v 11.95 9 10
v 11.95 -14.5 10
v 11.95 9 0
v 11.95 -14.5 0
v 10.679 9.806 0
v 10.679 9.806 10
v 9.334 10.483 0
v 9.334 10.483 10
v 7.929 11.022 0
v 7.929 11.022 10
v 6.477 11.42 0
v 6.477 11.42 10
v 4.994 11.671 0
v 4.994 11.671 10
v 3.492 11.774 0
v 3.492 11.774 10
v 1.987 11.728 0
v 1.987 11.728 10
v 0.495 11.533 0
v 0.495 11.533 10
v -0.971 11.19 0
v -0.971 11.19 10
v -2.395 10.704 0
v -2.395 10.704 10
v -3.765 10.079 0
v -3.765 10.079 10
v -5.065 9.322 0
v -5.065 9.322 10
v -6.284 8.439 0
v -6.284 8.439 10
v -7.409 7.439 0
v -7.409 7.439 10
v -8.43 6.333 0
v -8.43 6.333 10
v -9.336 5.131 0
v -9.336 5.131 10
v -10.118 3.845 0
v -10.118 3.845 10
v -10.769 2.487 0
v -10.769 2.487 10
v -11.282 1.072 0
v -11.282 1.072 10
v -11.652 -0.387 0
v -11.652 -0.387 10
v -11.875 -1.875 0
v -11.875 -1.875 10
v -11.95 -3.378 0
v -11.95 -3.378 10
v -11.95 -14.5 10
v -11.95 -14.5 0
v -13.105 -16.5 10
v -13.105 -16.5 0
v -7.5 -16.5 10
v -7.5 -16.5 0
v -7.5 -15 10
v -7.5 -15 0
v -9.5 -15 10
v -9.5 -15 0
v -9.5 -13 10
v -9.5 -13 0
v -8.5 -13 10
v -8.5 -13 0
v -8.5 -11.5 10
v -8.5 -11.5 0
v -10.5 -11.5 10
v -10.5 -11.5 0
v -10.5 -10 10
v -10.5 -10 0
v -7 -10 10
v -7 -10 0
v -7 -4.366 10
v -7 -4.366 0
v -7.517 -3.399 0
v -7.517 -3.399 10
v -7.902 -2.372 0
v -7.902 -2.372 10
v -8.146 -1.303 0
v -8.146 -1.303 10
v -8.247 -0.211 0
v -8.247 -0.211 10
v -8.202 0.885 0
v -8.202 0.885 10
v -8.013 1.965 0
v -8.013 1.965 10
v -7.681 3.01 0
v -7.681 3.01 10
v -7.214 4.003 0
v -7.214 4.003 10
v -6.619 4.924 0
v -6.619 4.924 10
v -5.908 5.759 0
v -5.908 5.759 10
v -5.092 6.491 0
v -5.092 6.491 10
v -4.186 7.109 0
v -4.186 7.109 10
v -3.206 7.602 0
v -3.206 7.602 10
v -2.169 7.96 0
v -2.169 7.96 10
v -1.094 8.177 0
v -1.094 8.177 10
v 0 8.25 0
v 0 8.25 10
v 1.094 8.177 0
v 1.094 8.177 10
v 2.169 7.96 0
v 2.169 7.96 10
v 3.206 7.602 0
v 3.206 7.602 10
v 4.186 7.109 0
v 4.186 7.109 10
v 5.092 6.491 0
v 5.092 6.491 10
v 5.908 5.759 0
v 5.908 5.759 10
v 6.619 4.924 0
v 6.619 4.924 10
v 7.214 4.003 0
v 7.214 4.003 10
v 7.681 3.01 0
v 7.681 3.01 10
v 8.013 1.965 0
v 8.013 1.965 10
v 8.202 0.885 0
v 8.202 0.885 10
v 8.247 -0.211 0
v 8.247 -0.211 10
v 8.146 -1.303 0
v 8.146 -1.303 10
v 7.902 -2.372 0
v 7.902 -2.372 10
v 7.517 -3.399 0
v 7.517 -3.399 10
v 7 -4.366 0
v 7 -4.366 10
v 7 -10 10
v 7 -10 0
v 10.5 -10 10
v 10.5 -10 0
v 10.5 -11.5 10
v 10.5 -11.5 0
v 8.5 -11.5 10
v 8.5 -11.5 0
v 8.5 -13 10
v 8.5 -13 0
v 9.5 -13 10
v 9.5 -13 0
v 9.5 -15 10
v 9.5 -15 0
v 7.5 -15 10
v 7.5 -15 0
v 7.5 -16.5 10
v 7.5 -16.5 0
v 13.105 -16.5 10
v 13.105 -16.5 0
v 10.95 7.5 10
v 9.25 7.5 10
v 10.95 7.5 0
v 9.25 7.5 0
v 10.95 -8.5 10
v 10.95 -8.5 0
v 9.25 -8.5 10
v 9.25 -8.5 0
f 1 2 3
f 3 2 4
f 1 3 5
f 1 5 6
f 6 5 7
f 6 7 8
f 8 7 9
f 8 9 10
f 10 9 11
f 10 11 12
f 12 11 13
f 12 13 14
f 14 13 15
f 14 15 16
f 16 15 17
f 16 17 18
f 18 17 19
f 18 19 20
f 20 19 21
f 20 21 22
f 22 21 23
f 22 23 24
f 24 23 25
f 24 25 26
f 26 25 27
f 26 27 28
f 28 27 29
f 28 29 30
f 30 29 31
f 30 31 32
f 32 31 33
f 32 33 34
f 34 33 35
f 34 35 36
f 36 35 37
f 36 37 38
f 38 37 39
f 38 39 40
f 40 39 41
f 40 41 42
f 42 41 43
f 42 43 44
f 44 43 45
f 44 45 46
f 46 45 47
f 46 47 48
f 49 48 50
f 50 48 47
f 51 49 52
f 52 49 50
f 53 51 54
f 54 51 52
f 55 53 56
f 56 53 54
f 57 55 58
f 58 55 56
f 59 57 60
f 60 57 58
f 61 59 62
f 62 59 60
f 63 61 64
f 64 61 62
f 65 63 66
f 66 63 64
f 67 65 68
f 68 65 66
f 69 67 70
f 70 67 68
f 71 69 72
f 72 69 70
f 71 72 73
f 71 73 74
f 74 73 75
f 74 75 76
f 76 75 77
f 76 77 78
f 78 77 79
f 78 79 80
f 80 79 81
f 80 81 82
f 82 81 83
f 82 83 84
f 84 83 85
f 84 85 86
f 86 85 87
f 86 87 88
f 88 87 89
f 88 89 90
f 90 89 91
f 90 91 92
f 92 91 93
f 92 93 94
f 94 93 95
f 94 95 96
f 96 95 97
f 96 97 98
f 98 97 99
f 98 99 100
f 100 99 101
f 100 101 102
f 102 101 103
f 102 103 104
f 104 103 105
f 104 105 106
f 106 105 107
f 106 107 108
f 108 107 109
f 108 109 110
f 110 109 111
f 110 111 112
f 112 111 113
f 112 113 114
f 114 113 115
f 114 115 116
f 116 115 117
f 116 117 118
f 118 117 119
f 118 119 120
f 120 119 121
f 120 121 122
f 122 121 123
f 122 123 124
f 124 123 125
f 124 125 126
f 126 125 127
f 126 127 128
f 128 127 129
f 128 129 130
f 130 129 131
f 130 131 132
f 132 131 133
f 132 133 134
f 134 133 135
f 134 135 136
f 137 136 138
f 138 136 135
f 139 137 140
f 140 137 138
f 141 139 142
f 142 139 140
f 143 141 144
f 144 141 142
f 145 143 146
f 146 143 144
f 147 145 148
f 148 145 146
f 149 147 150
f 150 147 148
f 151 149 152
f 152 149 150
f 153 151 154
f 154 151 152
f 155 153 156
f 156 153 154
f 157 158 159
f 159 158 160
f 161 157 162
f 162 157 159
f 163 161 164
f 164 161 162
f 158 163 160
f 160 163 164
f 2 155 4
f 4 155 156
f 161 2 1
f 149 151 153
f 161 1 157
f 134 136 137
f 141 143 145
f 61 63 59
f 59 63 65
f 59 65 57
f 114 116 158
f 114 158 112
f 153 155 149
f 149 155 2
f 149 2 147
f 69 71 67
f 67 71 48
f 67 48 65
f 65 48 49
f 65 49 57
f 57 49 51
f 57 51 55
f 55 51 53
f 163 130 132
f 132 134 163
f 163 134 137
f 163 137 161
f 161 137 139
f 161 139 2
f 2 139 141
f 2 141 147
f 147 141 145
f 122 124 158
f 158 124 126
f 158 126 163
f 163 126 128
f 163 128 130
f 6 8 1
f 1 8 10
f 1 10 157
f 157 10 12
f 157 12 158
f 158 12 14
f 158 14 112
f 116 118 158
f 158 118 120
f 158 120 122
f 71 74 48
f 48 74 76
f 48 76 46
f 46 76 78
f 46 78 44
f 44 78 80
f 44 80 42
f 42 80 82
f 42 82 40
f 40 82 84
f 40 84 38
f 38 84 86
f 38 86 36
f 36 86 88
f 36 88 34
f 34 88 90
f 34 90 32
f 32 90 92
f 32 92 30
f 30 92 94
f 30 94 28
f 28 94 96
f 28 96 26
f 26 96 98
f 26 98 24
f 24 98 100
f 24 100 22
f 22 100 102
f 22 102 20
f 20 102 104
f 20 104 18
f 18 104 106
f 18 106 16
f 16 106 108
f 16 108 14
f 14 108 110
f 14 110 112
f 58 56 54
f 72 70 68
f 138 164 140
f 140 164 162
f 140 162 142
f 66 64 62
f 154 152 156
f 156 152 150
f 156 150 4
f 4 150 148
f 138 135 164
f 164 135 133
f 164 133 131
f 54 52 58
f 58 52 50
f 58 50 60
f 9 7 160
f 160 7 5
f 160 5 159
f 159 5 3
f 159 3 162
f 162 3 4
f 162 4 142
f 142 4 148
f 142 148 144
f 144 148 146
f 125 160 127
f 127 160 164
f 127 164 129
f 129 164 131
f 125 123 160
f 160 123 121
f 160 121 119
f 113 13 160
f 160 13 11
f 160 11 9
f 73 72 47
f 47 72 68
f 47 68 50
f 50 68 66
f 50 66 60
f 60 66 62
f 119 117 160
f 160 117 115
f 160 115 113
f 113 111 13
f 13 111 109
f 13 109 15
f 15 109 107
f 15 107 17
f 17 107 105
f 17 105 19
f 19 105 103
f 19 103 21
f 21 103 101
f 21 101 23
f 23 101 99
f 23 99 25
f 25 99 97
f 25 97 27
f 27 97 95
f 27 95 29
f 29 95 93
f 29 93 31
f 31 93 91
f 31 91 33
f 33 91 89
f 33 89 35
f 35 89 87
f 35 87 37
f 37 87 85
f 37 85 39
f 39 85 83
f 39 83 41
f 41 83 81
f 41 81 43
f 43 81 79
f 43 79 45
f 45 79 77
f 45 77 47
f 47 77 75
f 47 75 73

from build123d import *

# Parameters (mm, degrees)
SKETCH1_W           = 1.7
SKETCH1_H           = 16
BOSS_EXTRUDE1_DEPTH = 10


with BuildPart() as part:
    # Sketch1 → Boss-Extrude1 (new body)
    with BuildSketch(Plane.XY):
        with BuildLine():
            Line((8.5, -13), (9.5, -13))
            Line((9.5, -13), (9.5, -15))
            Line((9.5, -15), (7.5, -15))
            Line((7.5, -15), (7.5, -16.5))
            Line((7.5, -16.5), (13.104700538, -16.5))
            Line((13.104700538, -16.5), (11.95, -14.5))
            Line((11.95, -14.5), (11.95, 9))
            ThreePointArc((11.95, 9), (-3.764514939, 10.079270346), (-11.95, -3.378390615))
            Line((-11.95, -3.378390615), (-11.95, -14.5))
            Line((-11.95, -14.5), (-13.104700538, -16.5))
            Line((-13.104700538, -16.5), (-7.5, -16.5))
            Line((-7.5, -16.5), (-7.5, -15))
            Line((-7.5, -15), (-9.5, -15))
            Line((-9.5, -15), (-9.5, -13))
            Line((-9.5, -13), (-8.5, -13))
            Line((-8.5, -13), (-8.5, -11.5))
            Line((-8.5, -11.5), (-10.5, -11.5))
            Line((-10.5, -11.5), (-10.5, -10))
            Line((-10.5, -10), (-7, -10))
            Line((-7, -10), (-7, -4.366062299))
            ThreePointArc((-7, -4.366062299), (0, 8.25), (7, -4.366062299))
            Line((7, -4.366062299), (7, -10))
            Line((7, -10), (10.5, -10))
            Line((10.5, -10), (10.5, -11.5))
            Line((10.5, -11.5), (8.5, -11.5))
            Line((8.5, -11.5), (8.5, -13))
        make_face()
        with Locations((10.1, -0.5)):
            Rectangle(SKETCH1_W, SKETCH1_H, mode=Mode.SUBTRACT)
    extrude(amount=BOSS_EXTRUDE1_DEPTH)


solid = part.part
